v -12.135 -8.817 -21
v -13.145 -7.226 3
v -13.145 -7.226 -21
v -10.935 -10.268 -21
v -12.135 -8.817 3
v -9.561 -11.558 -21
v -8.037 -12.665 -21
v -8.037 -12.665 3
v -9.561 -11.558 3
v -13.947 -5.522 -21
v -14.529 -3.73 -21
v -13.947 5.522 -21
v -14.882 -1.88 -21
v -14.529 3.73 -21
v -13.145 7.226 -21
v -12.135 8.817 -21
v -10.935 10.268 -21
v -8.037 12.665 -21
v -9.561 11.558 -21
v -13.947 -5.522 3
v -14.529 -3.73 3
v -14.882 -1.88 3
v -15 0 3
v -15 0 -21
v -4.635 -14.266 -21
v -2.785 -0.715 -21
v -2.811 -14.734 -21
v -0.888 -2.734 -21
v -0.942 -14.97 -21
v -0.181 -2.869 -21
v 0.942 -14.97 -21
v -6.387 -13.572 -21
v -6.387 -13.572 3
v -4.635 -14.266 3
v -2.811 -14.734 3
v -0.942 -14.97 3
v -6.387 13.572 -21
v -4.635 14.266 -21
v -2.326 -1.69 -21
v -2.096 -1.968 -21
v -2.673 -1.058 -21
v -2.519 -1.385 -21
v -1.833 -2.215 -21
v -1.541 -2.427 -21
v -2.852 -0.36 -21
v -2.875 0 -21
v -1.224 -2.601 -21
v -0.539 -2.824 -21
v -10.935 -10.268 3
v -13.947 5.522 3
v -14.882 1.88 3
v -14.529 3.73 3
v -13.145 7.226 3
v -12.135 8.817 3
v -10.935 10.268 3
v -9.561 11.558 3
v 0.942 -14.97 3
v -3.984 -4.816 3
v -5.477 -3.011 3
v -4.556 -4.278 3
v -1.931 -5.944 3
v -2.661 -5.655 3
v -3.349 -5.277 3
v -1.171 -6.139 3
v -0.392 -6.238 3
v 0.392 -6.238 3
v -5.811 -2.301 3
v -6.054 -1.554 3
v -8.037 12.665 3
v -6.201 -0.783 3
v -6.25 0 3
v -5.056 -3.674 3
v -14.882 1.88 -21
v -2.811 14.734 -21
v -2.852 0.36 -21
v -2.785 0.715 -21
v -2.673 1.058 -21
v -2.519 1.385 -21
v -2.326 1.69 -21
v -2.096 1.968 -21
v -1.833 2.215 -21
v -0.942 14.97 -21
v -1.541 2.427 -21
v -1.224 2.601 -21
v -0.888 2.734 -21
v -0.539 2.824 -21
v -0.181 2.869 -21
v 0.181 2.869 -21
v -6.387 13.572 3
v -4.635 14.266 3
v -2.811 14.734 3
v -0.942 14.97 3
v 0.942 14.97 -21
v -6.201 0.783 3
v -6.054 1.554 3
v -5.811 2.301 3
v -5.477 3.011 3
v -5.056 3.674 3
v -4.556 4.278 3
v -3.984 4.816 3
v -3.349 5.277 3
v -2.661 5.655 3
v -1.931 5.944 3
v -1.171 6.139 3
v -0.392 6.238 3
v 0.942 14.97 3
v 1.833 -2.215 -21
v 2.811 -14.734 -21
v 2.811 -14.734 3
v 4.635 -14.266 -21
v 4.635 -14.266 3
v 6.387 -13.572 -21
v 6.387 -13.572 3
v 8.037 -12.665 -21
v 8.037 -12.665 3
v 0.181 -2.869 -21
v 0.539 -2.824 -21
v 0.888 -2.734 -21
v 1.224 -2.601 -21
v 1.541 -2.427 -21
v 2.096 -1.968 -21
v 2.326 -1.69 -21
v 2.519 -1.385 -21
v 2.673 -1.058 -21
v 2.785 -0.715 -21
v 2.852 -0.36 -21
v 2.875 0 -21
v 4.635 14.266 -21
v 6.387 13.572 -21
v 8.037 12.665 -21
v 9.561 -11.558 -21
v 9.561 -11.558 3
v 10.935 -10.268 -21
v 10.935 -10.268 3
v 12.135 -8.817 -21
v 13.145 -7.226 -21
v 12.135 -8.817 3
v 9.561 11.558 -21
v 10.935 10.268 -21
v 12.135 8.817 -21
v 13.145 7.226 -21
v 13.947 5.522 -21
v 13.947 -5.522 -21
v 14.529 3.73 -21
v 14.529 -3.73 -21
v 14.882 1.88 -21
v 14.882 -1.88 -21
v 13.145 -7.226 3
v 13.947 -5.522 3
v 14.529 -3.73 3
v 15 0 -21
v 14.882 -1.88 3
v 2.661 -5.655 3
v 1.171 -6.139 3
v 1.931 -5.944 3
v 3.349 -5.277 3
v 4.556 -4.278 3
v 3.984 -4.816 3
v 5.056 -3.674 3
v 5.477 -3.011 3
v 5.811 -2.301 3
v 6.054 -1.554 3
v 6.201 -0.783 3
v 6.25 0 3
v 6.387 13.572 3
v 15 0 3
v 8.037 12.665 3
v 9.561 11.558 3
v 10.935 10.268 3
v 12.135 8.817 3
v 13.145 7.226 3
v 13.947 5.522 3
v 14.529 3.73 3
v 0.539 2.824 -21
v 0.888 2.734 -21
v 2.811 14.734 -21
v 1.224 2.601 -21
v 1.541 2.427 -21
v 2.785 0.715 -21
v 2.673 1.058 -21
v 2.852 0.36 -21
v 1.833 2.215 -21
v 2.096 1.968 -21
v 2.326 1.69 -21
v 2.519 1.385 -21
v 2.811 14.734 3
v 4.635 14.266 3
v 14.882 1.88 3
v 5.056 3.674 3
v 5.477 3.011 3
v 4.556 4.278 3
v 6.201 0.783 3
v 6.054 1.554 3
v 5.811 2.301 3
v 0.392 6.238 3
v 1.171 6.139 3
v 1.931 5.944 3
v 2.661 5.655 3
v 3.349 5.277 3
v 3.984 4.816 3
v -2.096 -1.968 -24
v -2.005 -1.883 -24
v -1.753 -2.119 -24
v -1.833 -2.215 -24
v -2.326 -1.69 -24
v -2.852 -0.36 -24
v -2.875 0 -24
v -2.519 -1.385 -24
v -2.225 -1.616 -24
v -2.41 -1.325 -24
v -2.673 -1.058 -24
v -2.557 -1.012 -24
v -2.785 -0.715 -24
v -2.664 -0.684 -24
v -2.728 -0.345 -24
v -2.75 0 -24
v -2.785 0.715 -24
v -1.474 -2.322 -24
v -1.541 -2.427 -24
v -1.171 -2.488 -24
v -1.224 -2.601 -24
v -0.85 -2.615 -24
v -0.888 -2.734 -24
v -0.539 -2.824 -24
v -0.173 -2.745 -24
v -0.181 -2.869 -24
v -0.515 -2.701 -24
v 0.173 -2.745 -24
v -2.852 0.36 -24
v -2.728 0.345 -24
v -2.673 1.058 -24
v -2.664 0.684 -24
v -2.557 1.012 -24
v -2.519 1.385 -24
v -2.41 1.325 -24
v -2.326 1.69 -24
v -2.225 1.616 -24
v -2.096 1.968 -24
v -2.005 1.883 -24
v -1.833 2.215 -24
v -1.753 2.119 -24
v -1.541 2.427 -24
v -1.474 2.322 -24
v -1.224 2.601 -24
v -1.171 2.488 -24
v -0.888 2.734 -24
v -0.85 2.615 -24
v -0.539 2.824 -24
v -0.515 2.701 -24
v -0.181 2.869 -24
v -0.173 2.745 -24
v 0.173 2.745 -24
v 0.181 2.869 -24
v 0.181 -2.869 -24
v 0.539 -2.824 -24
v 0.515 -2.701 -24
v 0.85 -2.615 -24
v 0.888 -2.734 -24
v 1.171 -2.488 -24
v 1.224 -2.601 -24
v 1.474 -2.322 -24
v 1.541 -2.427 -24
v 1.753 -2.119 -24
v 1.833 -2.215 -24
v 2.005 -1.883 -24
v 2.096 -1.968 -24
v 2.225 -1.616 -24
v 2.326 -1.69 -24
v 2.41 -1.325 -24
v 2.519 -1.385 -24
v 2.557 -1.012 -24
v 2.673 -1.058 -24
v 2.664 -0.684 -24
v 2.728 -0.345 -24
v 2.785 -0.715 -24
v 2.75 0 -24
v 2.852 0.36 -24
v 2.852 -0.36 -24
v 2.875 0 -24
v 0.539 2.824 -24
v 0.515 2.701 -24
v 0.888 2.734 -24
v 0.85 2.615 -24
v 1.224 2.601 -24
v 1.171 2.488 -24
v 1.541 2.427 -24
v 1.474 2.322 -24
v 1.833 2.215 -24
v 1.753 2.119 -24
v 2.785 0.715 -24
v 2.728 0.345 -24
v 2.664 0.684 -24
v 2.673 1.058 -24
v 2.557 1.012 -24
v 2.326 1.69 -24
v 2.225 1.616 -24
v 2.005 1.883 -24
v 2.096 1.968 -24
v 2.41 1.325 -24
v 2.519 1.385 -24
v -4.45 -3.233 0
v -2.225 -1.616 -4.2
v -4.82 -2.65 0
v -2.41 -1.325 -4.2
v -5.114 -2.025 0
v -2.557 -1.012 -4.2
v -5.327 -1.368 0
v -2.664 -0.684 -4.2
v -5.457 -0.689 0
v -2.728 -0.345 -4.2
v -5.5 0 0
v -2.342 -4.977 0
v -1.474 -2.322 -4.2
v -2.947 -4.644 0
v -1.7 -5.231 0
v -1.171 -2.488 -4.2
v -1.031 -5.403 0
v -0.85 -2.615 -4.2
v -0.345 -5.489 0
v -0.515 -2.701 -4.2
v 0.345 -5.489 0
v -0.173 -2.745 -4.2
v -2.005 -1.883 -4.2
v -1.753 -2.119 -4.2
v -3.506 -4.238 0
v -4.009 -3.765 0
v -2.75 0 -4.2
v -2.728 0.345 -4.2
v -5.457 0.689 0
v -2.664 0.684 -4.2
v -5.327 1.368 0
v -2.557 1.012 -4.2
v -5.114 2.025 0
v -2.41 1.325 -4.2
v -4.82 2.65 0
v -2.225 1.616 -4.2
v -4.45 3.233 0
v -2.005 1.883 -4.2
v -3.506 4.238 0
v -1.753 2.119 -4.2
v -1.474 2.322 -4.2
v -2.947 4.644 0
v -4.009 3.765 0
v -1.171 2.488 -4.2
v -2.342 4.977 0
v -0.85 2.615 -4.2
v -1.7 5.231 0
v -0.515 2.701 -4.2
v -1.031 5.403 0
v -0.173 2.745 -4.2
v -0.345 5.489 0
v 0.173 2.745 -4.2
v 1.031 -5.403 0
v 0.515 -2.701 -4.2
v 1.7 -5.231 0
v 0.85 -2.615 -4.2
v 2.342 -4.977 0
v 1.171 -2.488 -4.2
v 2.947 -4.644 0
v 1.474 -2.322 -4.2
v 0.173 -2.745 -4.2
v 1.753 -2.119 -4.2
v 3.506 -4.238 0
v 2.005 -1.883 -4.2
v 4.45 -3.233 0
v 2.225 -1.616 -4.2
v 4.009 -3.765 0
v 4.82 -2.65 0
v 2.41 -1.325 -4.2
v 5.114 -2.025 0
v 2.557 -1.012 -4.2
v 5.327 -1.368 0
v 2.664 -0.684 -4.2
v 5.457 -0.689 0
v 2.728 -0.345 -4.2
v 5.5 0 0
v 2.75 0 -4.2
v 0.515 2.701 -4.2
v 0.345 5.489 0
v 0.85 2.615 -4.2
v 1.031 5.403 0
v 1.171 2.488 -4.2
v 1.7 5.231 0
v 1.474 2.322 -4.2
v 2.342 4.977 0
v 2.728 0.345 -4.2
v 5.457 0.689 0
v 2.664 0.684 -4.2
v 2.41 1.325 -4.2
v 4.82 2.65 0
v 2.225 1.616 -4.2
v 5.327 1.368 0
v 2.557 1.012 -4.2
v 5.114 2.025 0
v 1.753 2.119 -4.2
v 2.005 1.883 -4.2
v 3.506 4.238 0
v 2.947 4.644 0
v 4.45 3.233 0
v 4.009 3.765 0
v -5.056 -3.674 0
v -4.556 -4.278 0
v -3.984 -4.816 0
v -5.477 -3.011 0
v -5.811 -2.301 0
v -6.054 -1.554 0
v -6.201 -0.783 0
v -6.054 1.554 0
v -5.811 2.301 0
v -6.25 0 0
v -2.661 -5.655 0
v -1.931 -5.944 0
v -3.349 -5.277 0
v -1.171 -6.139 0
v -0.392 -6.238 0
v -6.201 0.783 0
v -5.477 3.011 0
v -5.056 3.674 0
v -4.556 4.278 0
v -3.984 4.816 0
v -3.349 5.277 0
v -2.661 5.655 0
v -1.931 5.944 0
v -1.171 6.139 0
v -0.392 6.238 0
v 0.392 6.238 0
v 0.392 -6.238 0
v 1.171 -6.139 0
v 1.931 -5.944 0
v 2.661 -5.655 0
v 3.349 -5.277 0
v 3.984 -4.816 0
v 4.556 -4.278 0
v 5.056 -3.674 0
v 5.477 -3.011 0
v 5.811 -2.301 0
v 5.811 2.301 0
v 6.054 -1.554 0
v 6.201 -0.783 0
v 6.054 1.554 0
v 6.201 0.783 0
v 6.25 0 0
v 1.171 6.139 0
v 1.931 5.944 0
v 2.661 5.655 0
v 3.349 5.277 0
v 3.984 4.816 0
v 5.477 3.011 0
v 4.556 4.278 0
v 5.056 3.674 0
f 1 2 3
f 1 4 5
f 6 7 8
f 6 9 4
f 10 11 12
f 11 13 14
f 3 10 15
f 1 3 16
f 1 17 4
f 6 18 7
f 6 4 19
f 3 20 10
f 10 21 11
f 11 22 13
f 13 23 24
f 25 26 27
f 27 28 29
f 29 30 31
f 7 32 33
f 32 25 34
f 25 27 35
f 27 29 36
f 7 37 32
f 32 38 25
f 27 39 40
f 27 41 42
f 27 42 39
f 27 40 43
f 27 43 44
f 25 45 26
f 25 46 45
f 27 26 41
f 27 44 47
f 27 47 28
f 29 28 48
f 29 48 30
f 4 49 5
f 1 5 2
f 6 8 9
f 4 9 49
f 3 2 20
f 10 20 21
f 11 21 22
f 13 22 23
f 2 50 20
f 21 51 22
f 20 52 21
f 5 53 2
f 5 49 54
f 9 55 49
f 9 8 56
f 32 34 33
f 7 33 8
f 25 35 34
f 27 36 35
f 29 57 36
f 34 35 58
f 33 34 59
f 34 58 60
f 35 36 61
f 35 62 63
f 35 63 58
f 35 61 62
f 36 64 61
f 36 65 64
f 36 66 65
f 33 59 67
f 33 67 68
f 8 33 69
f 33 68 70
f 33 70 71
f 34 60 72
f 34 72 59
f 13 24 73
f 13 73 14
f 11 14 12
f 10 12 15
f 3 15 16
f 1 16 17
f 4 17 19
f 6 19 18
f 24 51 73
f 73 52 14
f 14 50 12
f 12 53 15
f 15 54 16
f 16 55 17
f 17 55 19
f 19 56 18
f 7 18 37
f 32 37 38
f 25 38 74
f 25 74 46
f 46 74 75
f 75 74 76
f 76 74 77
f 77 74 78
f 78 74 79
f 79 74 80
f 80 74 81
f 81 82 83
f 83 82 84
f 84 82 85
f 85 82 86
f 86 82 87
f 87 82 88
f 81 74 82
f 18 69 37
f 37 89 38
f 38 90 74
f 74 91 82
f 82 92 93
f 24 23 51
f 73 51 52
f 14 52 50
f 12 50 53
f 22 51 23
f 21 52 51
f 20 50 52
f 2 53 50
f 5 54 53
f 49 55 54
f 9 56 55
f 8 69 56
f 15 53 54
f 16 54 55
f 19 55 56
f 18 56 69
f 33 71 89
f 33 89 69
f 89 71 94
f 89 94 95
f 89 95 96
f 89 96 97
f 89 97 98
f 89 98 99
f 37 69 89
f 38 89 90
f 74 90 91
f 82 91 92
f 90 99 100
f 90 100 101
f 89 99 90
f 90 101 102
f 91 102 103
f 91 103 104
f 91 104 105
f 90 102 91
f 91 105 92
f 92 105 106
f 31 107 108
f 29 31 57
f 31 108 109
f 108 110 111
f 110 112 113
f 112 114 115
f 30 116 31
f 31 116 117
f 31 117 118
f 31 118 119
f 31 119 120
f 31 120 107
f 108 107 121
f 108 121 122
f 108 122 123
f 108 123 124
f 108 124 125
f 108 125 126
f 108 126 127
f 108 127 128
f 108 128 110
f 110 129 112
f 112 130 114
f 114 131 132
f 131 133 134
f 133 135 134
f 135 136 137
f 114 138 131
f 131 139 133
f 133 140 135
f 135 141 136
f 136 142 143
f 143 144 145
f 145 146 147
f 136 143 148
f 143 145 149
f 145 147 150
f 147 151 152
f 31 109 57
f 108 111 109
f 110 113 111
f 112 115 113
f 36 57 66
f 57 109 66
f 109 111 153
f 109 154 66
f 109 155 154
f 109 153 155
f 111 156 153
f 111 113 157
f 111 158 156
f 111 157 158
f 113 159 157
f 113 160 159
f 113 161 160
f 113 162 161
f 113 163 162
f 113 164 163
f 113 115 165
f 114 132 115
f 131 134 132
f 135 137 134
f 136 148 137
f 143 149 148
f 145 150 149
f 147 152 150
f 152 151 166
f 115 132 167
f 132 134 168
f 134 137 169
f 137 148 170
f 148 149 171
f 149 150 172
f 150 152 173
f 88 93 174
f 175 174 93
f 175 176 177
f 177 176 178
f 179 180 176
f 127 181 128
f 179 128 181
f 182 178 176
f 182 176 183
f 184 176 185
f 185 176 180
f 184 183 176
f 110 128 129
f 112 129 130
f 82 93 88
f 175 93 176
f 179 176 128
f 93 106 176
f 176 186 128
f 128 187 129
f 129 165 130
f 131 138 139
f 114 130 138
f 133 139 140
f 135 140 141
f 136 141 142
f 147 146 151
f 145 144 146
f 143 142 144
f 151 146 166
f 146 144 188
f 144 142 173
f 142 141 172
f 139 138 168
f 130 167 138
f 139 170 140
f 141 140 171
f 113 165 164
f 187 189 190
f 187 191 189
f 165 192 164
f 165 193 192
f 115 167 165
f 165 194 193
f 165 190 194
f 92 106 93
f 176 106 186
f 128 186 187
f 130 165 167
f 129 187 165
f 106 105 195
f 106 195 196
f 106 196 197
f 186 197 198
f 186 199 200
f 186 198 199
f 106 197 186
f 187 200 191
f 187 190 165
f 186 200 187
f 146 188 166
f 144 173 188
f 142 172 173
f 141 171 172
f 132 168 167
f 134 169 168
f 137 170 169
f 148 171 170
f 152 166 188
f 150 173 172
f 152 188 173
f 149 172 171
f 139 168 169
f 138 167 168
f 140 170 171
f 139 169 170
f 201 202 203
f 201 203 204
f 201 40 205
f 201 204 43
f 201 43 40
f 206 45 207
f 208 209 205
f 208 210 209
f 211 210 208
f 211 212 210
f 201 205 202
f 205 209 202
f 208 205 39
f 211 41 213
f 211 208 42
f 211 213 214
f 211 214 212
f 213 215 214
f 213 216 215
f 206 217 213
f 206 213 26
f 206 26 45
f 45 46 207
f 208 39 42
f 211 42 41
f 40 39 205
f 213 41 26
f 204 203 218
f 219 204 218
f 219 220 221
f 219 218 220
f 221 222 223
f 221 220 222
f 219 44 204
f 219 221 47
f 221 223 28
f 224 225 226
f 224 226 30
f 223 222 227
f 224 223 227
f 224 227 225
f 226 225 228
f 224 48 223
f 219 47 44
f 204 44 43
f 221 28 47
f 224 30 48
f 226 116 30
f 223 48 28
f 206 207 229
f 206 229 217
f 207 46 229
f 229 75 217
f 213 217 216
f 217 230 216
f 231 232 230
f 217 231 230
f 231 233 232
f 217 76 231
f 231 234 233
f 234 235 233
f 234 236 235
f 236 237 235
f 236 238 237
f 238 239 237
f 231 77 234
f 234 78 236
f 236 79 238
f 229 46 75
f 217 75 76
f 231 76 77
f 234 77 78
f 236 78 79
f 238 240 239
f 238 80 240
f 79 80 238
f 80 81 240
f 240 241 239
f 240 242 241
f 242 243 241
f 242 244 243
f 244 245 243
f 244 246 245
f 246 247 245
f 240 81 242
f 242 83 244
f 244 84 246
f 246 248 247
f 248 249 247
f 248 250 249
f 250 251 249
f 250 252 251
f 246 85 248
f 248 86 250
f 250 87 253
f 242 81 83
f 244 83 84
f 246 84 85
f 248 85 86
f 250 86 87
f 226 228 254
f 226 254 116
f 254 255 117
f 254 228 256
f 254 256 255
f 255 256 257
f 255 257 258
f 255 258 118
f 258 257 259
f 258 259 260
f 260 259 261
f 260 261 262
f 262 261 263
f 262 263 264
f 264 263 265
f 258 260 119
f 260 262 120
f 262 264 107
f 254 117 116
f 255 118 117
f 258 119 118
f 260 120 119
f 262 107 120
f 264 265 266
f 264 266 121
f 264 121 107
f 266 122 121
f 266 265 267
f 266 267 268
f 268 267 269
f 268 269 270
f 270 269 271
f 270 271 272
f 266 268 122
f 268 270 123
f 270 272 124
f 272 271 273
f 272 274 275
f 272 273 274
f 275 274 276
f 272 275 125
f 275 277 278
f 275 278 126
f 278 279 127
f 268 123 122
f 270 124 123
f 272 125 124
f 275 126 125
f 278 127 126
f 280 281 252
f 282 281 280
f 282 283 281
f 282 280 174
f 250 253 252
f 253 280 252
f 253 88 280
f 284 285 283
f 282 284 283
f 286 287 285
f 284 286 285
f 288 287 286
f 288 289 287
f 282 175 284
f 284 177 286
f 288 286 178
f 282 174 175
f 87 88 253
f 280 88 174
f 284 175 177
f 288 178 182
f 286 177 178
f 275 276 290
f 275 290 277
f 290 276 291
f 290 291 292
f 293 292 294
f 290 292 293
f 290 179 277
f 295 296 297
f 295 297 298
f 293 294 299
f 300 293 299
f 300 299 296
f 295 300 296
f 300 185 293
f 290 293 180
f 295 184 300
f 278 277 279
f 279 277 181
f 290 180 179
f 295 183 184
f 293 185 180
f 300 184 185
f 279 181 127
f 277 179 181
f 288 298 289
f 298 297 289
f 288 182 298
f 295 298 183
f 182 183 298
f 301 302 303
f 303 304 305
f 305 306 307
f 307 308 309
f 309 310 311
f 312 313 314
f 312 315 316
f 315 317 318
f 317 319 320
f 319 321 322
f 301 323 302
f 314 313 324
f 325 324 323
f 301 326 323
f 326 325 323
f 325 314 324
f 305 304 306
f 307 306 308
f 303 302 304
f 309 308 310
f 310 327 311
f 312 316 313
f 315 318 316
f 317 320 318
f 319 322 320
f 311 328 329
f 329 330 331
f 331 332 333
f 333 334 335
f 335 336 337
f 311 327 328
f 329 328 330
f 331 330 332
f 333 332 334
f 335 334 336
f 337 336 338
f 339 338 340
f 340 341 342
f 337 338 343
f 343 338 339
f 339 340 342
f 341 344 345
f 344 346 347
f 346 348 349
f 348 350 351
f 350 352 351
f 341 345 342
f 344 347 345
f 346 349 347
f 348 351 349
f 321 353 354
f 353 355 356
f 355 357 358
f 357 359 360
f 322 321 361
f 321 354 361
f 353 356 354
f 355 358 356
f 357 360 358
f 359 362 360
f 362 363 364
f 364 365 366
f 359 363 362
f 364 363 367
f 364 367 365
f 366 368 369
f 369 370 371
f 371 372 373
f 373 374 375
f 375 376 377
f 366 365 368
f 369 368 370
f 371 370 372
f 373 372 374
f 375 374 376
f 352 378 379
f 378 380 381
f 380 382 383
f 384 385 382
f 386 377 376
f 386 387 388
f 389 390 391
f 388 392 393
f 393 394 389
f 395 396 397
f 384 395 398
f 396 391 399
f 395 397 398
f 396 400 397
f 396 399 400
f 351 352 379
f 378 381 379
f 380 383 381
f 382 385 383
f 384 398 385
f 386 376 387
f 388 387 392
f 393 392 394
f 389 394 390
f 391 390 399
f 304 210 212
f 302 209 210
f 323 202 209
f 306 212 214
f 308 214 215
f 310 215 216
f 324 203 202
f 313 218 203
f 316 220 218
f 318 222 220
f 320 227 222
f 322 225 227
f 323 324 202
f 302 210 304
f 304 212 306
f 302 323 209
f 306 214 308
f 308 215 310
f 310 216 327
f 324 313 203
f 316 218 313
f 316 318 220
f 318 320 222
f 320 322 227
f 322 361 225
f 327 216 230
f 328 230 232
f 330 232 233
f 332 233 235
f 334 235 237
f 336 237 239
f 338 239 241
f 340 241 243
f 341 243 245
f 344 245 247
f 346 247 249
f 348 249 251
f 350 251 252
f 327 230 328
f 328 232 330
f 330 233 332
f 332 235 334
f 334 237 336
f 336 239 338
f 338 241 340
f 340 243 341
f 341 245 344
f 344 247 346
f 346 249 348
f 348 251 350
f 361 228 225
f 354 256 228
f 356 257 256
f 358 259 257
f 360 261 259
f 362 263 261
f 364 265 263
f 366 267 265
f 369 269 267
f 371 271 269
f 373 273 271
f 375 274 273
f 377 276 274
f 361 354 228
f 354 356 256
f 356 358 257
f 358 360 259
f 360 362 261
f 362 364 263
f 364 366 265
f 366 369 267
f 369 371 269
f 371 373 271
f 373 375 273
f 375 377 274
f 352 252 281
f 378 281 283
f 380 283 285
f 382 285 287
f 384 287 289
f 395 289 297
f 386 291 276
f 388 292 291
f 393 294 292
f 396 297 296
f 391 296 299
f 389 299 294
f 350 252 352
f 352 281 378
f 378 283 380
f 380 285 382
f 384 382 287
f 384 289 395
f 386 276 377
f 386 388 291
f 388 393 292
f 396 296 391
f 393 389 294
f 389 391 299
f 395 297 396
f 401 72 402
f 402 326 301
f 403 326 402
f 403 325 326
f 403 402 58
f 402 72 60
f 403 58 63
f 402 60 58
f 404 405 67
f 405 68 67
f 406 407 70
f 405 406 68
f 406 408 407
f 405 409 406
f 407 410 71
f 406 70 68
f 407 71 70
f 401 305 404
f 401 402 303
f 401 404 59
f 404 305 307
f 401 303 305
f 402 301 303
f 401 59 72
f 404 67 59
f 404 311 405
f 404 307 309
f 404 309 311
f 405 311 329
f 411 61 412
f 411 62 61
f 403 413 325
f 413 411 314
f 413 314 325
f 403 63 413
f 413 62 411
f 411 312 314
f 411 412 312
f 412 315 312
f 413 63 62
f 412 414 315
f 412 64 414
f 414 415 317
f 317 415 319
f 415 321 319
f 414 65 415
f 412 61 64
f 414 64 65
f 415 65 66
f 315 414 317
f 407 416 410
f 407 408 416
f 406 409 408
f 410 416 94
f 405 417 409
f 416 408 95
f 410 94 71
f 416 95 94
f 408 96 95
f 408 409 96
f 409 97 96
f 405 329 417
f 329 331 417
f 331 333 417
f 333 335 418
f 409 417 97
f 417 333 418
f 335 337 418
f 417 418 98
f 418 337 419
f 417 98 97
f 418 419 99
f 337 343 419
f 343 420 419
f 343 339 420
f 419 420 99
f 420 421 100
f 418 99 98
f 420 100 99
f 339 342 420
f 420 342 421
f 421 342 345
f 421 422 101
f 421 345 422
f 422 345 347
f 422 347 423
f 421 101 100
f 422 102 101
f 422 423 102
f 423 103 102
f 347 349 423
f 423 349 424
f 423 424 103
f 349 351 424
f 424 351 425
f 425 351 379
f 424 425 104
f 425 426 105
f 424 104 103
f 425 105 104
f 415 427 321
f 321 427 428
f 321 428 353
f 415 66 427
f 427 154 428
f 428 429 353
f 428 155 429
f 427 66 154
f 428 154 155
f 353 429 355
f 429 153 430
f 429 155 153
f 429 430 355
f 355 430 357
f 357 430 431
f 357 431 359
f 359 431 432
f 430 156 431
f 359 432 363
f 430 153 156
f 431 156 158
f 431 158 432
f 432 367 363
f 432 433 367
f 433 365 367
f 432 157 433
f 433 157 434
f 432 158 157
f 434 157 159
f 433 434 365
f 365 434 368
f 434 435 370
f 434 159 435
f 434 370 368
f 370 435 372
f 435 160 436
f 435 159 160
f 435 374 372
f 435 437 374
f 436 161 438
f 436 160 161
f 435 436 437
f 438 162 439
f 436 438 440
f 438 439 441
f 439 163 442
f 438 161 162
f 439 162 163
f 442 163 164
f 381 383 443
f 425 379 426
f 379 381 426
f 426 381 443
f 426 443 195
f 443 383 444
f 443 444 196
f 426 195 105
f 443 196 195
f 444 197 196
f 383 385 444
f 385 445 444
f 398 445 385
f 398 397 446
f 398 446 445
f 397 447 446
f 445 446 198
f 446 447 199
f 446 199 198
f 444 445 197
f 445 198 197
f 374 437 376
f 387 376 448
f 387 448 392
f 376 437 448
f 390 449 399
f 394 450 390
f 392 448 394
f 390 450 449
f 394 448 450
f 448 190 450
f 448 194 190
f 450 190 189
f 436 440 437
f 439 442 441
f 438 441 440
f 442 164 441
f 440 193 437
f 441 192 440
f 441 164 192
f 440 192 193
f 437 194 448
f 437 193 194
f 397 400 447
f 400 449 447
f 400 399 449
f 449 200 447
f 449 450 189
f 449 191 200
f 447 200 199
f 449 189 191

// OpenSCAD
$fn = 50;

difference() {
	union() {
		translate(v = [0, 0, -21.0]) {
			cylinder(h = 24, r = 15.0);
		}
		#translate(v = [0, 0, -24.0]) {
			cylinder(h = 24, r = 2.875);
		}
	}
	union() {
		translate(v = [0, 0, 0]) {
			rotate(a = [0, 0, 0]) {
				difference() {
					union() {
						translate(v = [0, 0, -24.0]) {
							cylinder(h = 24, r = 2.25);
						}
						translate(v = [0, 0, -4.2]) {
							cylinder(h = 4.2, r1 = 2.75, r2 = 5.5);
						}
						translate(v = [0, 0, -24.0]) {
							cylinder(h = 24, r = 2.75);
						}
						translate(v = [0, 0, -24.0]) {
							cylinder(h = 24, r = 2.25);
						}
					}
					union();
				}
			}
		}
		#cylinder(h = 3, r = 6.25);
	}
}
